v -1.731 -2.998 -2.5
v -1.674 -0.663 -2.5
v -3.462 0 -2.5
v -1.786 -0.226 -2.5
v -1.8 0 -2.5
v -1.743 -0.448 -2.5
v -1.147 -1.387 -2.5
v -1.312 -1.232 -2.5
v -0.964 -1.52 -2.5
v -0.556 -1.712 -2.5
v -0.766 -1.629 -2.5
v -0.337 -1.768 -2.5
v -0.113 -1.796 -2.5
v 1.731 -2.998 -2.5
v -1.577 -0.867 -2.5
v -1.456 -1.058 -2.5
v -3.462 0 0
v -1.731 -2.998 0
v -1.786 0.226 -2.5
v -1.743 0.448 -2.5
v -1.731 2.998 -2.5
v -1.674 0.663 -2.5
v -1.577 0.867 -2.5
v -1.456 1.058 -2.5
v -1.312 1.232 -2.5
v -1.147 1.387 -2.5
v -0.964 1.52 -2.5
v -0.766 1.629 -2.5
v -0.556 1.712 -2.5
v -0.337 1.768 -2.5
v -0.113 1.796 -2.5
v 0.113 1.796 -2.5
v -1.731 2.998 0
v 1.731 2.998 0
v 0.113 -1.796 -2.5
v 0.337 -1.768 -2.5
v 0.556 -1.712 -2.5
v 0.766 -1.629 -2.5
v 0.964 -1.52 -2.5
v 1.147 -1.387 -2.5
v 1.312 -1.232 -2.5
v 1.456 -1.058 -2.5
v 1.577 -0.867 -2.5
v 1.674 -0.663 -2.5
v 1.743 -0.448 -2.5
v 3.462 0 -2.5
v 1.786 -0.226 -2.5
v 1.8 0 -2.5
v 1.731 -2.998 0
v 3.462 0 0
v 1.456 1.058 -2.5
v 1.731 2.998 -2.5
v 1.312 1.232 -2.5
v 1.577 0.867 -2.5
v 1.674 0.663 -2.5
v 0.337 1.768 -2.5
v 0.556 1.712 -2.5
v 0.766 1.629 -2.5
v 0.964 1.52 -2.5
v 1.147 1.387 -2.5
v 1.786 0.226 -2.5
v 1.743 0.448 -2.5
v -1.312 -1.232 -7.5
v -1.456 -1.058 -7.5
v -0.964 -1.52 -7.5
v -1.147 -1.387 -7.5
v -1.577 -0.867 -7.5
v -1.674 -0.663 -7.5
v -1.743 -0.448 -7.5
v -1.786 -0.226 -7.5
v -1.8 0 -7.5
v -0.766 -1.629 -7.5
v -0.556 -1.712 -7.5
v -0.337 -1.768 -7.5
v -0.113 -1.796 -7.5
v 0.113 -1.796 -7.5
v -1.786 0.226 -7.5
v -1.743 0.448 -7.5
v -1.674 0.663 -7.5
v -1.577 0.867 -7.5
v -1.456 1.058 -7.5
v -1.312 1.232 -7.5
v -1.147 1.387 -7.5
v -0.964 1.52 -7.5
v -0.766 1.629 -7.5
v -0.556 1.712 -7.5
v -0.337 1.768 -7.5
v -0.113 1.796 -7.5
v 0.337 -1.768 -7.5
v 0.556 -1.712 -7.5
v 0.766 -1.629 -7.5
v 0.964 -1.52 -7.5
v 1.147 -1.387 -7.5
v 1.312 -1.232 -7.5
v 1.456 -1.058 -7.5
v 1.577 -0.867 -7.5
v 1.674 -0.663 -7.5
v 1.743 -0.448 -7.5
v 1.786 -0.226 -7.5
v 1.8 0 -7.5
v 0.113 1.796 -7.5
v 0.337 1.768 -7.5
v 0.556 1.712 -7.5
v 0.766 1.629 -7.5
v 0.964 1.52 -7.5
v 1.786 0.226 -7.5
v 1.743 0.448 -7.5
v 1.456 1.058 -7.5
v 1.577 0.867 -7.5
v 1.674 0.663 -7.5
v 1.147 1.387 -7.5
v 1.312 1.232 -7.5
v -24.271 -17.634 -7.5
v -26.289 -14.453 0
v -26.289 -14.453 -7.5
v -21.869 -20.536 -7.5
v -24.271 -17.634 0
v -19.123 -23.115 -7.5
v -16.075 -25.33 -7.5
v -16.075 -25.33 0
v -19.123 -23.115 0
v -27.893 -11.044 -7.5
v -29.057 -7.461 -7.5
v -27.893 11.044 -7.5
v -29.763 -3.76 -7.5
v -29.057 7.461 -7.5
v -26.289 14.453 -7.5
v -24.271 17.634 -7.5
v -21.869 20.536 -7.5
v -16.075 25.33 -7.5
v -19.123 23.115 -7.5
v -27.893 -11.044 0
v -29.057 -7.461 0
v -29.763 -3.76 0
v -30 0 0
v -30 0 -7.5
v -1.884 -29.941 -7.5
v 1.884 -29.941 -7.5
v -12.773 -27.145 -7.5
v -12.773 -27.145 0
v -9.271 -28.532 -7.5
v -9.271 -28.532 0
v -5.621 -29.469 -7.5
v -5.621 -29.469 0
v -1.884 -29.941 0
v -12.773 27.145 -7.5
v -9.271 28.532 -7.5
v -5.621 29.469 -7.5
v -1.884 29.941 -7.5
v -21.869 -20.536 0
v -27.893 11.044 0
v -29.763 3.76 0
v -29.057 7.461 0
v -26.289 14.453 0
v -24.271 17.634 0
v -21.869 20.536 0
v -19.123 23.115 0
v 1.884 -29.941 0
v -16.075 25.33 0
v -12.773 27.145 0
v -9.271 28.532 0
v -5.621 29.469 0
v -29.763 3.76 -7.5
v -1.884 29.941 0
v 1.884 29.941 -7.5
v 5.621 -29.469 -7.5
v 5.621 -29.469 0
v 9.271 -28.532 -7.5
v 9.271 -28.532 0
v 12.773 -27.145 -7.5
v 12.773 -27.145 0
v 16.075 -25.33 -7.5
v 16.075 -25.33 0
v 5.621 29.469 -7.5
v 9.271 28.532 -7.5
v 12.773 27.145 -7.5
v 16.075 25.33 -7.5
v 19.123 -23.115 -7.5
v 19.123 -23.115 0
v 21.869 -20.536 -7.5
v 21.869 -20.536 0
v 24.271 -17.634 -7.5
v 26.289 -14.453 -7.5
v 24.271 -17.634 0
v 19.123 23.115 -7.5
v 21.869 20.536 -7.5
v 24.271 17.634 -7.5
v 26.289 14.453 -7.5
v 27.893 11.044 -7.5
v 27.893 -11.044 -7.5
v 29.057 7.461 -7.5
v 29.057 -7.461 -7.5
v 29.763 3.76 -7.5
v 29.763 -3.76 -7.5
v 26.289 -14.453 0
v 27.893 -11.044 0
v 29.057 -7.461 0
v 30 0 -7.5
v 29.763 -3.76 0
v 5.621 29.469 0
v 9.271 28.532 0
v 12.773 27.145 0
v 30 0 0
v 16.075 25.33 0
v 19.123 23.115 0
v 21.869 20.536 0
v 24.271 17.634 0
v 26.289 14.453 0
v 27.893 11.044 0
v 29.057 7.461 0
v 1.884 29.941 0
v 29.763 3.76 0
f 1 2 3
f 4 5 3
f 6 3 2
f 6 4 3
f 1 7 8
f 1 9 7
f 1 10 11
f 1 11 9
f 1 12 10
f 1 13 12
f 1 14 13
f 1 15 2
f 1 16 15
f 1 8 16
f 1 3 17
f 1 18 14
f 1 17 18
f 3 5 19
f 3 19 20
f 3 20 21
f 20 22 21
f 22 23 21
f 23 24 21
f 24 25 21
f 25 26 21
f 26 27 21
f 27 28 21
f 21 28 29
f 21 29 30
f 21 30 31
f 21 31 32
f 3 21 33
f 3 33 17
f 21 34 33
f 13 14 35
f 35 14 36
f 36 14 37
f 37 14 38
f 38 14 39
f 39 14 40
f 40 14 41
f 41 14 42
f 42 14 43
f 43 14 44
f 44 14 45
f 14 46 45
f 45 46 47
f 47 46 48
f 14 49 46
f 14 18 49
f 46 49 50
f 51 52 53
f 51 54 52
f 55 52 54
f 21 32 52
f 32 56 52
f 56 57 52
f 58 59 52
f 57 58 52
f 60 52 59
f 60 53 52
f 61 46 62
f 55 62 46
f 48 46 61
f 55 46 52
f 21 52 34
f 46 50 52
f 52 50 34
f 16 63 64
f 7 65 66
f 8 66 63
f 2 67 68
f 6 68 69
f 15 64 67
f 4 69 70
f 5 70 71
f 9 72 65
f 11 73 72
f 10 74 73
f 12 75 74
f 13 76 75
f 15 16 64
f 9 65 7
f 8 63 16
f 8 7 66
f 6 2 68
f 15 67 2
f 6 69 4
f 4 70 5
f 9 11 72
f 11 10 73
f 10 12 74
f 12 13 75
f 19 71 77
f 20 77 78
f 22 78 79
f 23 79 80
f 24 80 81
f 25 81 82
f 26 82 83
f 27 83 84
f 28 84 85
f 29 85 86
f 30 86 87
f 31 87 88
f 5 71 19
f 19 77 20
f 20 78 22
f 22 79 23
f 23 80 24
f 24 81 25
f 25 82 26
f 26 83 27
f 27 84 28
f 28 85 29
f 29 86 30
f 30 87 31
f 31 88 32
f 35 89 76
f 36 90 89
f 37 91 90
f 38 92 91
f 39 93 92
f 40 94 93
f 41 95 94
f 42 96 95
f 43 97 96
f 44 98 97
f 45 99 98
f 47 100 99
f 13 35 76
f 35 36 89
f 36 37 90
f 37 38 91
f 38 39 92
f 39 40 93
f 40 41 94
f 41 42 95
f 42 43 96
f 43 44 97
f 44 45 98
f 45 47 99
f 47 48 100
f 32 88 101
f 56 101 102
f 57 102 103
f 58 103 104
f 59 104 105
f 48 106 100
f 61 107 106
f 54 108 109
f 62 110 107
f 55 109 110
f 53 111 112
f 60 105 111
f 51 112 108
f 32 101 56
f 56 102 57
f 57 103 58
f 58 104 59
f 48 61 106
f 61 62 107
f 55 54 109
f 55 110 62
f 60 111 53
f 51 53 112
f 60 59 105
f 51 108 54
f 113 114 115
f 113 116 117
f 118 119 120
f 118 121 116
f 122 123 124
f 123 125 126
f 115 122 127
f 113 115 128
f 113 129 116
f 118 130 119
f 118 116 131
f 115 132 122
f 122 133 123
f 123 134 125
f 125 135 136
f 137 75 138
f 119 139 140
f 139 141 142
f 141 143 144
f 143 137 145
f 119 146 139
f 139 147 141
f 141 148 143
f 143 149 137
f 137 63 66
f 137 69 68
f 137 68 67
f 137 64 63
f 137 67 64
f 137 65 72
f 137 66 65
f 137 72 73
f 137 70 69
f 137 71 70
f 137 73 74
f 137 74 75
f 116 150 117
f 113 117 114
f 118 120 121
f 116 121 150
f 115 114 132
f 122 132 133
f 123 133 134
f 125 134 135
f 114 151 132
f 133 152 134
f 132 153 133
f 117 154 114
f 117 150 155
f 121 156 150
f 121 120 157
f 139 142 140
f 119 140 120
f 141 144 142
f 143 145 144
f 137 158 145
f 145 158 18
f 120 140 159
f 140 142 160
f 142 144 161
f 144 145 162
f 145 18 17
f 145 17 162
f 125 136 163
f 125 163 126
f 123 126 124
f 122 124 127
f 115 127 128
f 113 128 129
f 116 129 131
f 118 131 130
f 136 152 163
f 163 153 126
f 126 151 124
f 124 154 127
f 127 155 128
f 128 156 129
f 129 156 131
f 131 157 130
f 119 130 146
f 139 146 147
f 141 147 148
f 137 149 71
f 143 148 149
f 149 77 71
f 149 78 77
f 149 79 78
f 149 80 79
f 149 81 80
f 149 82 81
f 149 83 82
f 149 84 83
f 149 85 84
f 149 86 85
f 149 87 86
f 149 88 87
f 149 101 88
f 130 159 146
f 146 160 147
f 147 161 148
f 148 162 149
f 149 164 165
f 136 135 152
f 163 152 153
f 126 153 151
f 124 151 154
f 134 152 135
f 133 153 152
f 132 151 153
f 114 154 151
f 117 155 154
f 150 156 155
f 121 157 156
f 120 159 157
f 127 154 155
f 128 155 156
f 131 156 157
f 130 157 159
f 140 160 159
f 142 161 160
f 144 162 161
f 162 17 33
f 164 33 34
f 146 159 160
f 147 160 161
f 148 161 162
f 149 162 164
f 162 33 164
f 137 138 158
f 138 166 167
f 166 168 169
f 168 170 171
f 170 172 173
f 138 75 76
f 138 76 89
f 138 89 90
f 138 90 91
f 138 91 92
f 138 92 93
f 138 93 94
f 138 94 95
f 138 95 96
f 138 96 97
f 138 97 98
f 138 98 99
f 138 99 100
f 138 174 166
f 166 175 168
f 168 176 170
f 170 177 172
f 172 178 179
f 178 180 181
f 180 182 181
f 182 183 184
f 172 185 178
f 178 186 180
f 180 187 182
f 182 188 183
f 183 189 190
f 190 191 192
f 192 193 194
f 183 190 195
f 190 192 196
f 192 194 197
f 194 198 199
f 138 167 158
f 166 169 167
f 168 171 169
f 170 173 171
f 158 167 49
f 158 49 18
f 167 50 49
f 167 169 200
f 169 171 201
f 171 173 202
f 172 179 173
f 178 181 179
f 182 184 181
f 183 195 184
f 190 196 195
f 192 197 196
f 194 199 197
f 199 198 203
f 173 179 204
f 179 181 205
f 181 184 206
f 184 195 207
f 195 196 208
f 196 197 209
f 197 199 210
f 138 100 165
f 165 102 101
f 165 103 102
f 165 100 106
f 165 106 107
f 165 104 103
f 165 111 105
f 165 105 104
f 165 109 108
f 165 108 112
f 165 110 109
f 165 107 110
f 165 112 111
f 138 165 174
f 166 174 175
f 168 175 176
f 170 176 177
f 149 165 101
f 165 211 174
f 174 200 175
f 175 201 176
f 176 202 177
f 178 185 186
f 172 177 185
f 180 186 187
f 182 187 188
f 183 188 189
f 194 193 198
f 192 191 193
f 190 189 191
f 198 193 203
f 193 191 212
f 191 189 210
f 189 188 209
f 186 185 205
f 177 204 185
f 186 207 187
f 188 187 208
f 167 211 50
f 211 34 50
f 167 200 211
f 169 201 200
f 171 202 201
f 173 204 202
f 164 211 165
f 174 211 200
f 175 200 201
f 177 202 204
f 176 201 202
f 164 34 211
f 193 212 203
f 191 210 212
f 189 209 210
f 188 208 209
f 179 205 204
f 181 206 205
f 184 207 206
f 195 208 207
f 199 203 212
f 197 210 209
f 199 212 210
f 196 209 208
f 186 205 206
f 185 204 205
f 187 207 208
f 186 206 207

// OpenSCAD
$fn = 50;


difference() {
	union() {
		translate(v = [0, 0, -7.5000000000]) {
			cylinder(h = 7.5000000000, r = 30.0000000000);
		}
	}
	union() {
		translate(v = [0, 0, 0]) {
			rotate(a = [0, 0, 0]) {
				difference() {
					union() {
						translate(v = [0, 0, -2.5000000000]) {
							linear_extrude(height = 2.5000000000) {
								polygon(points = [[3.4620000000, 0.0000000000], [1.7310000000, 2.9981799479], [-1.7310000000, 2.9981799479], [-3.4620000000, 0.0000000000], [-1.7310000000, -2.9981799479], [1.7310000000, -2.9981799479]]);
							}
						}
					}
					union();
				}
			}
		}
		#translate(v = [0, 0, -100.0000000000]) {
			cylinder(h = 200, r = 1.8000000000);
		}
	}
}
